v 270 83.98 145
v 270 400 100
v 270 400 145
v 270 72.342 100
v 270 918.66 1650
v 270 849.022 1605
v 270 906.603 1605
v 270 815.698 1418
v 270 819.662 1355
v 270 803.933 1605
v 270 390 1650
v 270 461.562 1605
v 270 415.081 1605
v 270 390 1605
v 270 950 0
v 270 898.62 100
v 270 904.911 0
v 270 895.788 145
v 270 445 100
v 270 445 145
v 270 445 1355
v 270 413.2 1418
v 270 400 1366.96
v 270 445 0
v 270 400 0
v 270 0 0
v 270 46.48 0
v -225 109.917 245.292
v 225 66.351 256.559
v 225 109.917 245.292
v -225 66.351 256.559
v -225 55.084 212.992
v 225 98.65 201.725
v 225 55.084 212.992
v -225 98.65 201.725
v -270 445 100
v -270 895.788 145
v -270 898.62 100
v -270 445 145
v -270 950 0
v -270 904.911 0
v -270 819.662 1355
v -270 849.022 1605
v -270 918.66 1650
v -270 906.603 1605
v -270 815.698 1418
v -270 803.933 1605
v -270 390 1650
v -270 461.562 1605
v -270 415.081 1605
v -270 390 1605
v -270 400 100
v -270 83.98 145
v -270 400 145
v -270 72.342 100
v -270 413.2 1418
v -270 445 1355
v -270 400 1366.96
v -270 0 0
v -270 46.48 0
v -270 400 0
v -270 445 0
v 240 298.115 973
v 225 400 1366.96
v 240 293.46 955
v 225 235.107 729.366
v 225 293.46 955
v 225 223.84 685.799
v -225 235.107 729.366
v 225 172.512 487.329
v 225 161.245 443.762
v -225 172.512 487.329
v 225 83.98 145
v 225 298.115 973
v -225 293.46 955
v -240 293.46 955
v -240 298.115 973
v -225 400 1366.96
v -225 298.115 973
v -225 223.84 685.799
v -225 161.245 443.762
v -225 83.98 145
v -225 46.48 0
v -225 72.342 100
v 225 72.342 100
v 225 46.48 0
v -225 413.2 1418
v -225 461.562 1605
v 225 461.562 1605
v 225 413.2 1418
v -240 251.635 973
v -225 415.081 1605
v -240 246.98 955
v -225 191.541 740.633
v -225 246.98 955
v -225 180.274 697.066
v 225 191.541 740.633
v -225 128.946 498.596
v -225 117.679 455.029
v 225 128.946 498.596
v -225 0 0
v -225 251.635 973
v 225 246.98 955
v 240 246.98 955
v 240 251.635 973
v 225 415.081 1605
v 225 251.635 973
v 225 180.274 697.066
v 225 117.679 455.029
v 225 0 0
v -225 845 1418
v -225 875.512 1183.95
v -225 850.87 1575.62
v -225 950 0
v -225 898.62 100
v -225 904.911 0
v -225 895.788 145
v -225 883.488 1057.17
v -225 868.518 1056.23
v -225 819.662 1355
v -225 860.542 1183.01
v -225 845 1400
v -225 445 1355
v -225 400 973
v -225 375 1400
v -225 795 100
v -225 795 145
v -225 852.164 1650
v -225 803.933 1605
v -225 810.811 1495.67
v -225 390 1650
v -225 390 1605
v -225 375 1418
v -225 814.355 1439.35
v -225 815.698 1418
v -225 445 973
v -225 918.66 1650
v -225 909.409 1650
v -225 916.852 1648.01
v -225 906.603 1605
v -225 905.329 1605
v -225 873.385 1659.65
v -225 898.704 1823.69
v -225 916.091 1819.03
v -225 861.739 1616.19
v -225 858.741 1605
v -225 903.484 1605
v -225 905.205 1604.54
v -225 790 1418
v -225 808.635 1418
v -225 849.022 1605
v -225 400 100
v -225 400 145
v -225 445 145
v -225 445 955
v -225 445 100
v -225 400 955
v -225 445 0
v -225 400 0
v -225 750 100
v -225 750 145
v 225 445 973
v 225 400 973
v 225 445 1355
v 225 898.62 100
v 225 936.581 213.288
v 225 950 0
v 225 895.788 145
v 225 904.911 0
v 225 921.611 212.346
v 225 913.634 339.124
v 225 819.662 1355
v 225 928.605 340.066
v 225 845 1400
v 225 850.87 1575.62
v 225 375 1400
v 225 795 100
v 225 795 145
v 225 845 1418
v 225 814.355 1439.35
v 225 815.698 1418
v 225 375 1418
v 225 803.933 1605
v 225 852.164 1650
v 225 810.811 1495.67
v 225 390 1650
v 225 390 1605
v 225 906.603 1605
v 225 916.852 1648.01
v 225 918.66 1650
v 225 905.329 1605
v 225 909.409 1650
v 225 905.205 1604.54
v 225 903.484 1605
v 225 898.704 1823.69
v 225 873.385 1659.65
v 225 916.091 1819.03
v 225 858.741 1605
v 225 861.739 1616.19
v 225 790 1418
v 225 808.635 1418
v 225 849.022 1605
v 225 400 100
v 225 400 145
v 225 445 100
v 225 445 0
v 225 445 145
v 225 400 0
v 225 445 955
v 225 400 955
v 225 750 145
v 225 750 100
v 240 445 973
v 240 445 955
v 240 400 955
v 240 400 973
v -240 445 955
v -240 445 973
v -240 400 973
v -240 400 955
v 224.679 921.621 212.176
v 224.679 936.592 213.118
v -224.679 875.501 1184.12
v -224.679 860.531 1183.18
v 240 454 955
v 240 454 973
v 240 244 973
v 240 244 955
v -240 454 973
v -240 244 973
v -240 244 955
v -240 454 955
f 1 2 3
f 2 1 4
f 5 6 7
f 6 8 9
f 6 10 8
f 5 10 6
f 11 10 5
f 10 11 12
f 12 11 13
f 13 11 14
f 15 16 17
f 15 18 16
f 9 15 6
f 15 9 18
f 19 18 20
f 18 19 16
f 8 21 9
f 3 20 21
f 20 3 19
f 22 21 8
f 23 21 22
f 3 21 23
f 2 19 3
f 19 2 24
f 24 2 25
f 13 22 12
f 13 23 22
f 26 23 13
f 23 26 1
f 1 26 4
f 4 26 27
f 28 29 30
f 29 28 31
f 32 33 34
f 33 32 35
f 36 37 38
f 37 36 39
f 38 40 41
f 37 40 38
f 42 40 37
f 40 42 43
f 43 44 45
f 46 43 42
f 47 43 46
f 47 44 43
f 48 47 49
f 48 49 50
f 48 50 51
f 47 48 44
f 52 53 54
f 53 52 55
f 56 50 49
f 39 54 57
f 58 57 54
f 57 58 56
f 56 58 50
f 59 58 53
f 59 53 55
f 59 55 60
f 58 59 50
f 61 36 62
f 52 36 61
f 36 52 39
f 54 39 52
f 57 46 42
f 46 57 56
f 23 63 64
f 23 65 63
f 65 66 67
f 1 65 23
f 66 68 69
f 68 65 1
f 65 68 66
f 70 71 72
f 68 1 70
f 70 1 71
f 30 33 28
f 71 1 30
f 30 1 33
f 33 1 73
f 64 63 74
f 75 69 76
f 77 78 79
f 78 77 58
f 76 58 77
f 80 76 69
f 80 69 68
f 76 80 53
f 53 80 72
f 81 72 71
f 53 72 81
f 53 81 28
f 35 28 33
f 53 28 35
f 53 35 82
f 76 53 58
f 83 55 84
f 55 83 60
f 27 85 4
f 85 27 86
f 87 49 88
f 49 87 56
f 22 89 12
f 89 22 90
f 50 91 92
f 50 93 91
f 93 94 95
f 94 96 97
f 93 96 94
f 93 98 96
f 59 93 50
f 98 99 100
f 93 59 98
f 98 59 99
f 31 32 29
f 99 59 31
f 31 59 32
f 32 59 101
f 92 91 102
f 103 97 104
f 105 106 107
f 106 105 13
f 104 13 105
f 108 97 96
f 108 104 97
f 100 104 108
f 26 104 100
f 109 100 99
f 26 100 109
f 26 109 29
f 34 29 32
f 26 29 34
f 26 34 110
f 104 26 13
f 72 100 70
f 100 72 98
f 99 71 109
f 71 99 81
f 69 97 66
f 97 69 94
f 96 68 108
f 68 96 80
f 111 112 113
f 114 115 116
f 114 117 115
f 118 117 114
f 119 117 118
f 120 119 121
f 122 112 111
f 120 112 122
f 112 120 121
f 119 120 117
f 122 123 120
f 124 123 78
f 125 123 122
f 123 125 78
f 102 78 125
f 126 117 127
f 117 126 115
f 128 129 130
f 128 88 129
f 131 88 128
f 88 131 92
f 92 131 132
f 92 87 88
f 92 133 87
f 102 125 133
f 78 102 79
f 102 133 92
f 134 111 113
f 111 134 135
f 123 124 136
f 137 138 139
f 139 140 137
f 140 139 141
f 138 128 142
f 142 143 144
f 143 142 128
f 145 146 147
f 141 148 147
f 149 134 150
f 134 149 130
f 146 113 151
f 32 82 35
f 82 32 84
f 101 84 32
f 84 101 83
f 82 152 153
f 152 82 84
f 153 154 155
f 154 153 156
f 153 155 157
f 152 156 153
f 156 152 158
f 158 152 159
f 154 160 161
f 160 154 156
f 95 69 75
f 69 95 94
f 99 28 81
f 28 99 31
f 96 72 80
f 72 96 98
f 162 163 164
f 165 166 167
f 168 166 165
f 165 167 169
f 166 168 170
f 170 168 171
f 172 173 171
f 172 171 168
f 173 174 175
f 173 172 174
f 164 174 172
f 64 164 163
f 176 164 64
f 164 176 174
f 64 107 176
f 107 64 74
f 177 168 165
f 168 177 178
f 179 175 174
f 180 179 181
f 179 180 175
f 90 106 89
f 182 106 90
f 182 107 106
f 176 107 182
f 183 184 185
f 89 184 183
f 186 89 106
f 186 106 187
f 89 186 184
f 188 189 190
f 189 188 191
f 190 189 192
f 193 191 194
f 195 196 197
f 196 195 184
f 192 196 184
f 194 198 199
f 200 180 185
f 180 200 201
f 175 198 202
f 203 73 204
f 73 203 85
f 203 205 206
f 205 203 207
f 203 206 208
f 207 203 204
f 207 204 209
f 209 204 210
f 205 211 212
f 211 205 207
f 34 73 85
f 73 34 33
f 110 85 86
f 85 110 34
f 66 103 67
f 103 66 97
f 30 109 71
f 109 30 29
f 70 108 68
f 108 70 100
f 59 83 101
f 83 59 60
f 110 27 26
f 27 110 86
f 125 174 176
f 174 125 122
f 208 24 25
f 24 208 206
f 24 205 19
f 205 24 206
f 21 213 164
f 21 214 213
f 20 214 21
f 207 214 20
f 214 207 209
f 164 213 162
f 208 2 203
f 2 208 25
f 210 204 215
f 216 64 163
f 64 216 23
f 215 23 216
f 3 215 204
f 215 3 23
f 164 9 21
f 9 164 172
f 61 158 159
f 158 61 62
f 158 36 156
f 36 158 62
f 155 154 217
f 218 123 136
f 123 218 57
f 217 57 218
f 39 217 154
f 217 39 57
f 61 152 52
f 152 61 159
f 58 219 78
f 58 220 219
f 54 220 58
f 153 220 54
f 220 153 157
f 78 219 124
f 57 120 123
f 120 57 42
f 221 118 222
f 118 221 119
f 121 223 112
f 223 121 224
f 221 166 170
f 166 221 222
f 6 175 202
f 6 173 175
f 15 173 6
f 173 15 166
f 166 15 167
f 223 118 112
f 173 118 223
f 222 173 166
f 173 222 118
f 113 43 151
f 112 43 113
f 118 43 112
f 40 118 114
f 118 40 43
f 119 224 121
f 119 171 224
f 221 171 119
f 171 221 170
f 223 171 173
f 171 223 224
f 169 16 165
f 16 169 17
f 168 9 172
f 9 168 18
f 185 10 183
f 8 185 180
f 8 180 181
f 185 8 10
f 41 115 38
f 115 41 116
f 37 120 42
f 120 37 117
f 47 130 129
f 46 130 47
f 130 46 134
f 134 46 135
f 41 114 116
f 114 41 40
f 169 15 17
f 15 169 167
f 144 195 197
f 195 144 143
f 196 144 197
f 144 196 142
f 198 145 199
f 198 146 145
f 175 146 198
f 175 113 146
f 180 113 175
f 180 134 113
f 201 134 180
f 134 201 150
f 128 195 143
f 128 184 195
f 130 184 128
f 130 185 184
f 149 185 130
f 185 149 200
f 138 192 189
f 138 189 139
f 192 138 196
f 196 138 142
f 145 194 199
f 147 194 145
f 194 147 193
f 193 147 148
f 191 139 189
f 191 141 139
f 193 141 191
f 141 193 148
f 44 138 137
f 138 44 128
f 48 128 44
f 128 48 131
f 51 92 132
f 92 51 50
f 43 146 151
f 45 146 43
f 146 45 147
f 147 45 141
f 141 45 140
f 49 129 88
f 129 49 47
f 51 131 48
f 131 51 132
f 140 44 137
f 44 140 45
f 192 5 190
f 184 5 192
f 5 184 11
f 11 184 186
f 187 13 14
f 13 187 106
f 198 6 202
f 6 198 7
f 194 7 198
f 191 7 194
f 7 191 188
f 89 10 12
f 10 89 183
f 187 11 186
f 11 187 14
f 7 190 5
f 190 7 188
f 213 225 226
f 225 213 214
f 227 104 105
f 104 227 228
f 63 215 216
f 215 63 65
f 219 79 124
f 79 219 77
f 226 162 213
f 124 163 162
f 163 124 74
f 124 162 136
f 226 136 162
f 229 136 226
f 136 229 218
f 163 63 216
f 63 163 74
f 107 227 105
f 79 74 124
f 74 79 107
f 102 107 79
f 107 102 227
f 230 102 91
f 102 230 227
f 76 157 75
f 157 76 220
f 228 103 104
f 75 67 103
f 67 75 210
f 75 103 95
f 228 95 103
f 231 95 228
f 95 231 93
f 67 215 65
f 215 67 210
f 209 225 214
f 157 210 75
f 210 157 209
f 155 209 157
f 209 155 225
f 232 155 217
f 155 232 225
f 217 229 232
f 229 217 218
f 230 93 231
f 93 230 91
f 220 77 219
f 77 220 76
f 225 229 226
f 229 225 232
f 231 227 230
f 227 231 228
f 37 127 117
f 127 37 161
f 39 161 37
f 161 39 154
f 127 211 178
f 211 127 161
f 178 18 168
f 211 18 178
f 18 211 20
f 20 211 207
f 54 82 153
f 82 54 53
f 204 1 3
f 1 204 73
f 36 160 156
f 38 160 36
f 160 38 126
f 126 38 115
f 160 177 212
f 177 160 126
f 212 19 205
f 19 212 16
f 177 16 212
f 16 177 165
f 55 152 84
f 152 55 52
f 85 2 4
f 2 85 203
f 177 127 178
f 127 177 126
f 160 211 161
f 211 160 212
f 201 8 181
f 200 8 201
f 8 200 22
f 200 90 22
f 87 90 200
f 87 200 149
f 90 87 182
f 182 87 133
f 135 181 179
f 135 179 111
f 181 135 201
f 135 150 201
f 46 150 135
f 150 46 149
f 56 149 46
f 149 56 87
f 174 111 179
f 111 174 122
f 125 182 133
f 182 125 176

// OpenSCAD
module highchair() {
difference(){
rotate([-14.5,0,0]){    
    union(){
        translate([225,0,0])
        cube([45,45,1700]);                     // ladder right beam
        translate([-270,0,0]){
            cube([45,45,1700]);                 // ladder left beam
            for(h=[220:250:720]) 
                translate([0,0,h]) 
                    cube([540,45,45]);          // steps
        }
}
}
translate([-300,-10,-100]) cube([600,100,100]); // cut ladder bottom excess
}

translate([225,400,0]) {
    cube([45,45,1400]);                         // right vertical beam
    translate([0,0,1355]) cube([45,420,45]);    // right higher horizontal beam
}


translate([-270,400,0]) {
    cube([45,45,1400]);                         // left vertical beam
    translate([0,0,1355]) cube([45,420,45]);    // left higher horizontal beam
}

// back
translate([0,950,0])
difference(){
rotate([3.6,0,0]){
        difference(){     
        translate([0,0,700])
            rotate([0,-28,0])
                translate([-30,-15,-535])
                    cube ([60,15,1070]);        // back crossbeam
        translate([240,-100,0])
            cube([200,200,1500]);               // cut crossbeam excess left
        translate([-440,-100,0])
            cube([200,200,1500]);               // cut crossbeam excess right
        };
        translate([225,-45,0]) {
            cube([45,45,1650]);                 // back right beam
        }
        translate([-270,-45,0]) {
            cube([45,45,1650]);                 // back right beam
        }

}
translate([-300,-80,-100]) cube([600,100,100]); // cut back bottom excess
}

translate([-240,244,955]) cube([480,210,18]);   // footrest
translate([225,40,100]) cube([45,900,45]);      // right lower horizontal
translate([-270,40,100]) cube([45,900,45]);     // left lower horizontal
translate([-270,750,100]) cube([540,45,45]);    // lower connecting 
translate([-270,375,1400]) cube([540,470,18]);  // seat

rot = -15;
translate([-225,790,1418])
rotate([rot,0,0]) {
    cube([450,18,420]);                         // backrest
    translate([0,18,210]) cube([450,45,45]);    // beam behind backrest
}

translate([-270,390,1605])
difference() {
  cube([45,530,45]);
    translate([0,530,50]) 
    rotate([rot,0,0])  
    translate([-25,0,-100])
  cube([100,100,100]);
}

translate([225,390,1605])
difference() {
  cube([45,530,45]);
    translate([0,530,50]) 
    rotate([rot,0,0])  
    translate([-25,0,-100])
  cube([100,100,100]);
}
}
highchair();
